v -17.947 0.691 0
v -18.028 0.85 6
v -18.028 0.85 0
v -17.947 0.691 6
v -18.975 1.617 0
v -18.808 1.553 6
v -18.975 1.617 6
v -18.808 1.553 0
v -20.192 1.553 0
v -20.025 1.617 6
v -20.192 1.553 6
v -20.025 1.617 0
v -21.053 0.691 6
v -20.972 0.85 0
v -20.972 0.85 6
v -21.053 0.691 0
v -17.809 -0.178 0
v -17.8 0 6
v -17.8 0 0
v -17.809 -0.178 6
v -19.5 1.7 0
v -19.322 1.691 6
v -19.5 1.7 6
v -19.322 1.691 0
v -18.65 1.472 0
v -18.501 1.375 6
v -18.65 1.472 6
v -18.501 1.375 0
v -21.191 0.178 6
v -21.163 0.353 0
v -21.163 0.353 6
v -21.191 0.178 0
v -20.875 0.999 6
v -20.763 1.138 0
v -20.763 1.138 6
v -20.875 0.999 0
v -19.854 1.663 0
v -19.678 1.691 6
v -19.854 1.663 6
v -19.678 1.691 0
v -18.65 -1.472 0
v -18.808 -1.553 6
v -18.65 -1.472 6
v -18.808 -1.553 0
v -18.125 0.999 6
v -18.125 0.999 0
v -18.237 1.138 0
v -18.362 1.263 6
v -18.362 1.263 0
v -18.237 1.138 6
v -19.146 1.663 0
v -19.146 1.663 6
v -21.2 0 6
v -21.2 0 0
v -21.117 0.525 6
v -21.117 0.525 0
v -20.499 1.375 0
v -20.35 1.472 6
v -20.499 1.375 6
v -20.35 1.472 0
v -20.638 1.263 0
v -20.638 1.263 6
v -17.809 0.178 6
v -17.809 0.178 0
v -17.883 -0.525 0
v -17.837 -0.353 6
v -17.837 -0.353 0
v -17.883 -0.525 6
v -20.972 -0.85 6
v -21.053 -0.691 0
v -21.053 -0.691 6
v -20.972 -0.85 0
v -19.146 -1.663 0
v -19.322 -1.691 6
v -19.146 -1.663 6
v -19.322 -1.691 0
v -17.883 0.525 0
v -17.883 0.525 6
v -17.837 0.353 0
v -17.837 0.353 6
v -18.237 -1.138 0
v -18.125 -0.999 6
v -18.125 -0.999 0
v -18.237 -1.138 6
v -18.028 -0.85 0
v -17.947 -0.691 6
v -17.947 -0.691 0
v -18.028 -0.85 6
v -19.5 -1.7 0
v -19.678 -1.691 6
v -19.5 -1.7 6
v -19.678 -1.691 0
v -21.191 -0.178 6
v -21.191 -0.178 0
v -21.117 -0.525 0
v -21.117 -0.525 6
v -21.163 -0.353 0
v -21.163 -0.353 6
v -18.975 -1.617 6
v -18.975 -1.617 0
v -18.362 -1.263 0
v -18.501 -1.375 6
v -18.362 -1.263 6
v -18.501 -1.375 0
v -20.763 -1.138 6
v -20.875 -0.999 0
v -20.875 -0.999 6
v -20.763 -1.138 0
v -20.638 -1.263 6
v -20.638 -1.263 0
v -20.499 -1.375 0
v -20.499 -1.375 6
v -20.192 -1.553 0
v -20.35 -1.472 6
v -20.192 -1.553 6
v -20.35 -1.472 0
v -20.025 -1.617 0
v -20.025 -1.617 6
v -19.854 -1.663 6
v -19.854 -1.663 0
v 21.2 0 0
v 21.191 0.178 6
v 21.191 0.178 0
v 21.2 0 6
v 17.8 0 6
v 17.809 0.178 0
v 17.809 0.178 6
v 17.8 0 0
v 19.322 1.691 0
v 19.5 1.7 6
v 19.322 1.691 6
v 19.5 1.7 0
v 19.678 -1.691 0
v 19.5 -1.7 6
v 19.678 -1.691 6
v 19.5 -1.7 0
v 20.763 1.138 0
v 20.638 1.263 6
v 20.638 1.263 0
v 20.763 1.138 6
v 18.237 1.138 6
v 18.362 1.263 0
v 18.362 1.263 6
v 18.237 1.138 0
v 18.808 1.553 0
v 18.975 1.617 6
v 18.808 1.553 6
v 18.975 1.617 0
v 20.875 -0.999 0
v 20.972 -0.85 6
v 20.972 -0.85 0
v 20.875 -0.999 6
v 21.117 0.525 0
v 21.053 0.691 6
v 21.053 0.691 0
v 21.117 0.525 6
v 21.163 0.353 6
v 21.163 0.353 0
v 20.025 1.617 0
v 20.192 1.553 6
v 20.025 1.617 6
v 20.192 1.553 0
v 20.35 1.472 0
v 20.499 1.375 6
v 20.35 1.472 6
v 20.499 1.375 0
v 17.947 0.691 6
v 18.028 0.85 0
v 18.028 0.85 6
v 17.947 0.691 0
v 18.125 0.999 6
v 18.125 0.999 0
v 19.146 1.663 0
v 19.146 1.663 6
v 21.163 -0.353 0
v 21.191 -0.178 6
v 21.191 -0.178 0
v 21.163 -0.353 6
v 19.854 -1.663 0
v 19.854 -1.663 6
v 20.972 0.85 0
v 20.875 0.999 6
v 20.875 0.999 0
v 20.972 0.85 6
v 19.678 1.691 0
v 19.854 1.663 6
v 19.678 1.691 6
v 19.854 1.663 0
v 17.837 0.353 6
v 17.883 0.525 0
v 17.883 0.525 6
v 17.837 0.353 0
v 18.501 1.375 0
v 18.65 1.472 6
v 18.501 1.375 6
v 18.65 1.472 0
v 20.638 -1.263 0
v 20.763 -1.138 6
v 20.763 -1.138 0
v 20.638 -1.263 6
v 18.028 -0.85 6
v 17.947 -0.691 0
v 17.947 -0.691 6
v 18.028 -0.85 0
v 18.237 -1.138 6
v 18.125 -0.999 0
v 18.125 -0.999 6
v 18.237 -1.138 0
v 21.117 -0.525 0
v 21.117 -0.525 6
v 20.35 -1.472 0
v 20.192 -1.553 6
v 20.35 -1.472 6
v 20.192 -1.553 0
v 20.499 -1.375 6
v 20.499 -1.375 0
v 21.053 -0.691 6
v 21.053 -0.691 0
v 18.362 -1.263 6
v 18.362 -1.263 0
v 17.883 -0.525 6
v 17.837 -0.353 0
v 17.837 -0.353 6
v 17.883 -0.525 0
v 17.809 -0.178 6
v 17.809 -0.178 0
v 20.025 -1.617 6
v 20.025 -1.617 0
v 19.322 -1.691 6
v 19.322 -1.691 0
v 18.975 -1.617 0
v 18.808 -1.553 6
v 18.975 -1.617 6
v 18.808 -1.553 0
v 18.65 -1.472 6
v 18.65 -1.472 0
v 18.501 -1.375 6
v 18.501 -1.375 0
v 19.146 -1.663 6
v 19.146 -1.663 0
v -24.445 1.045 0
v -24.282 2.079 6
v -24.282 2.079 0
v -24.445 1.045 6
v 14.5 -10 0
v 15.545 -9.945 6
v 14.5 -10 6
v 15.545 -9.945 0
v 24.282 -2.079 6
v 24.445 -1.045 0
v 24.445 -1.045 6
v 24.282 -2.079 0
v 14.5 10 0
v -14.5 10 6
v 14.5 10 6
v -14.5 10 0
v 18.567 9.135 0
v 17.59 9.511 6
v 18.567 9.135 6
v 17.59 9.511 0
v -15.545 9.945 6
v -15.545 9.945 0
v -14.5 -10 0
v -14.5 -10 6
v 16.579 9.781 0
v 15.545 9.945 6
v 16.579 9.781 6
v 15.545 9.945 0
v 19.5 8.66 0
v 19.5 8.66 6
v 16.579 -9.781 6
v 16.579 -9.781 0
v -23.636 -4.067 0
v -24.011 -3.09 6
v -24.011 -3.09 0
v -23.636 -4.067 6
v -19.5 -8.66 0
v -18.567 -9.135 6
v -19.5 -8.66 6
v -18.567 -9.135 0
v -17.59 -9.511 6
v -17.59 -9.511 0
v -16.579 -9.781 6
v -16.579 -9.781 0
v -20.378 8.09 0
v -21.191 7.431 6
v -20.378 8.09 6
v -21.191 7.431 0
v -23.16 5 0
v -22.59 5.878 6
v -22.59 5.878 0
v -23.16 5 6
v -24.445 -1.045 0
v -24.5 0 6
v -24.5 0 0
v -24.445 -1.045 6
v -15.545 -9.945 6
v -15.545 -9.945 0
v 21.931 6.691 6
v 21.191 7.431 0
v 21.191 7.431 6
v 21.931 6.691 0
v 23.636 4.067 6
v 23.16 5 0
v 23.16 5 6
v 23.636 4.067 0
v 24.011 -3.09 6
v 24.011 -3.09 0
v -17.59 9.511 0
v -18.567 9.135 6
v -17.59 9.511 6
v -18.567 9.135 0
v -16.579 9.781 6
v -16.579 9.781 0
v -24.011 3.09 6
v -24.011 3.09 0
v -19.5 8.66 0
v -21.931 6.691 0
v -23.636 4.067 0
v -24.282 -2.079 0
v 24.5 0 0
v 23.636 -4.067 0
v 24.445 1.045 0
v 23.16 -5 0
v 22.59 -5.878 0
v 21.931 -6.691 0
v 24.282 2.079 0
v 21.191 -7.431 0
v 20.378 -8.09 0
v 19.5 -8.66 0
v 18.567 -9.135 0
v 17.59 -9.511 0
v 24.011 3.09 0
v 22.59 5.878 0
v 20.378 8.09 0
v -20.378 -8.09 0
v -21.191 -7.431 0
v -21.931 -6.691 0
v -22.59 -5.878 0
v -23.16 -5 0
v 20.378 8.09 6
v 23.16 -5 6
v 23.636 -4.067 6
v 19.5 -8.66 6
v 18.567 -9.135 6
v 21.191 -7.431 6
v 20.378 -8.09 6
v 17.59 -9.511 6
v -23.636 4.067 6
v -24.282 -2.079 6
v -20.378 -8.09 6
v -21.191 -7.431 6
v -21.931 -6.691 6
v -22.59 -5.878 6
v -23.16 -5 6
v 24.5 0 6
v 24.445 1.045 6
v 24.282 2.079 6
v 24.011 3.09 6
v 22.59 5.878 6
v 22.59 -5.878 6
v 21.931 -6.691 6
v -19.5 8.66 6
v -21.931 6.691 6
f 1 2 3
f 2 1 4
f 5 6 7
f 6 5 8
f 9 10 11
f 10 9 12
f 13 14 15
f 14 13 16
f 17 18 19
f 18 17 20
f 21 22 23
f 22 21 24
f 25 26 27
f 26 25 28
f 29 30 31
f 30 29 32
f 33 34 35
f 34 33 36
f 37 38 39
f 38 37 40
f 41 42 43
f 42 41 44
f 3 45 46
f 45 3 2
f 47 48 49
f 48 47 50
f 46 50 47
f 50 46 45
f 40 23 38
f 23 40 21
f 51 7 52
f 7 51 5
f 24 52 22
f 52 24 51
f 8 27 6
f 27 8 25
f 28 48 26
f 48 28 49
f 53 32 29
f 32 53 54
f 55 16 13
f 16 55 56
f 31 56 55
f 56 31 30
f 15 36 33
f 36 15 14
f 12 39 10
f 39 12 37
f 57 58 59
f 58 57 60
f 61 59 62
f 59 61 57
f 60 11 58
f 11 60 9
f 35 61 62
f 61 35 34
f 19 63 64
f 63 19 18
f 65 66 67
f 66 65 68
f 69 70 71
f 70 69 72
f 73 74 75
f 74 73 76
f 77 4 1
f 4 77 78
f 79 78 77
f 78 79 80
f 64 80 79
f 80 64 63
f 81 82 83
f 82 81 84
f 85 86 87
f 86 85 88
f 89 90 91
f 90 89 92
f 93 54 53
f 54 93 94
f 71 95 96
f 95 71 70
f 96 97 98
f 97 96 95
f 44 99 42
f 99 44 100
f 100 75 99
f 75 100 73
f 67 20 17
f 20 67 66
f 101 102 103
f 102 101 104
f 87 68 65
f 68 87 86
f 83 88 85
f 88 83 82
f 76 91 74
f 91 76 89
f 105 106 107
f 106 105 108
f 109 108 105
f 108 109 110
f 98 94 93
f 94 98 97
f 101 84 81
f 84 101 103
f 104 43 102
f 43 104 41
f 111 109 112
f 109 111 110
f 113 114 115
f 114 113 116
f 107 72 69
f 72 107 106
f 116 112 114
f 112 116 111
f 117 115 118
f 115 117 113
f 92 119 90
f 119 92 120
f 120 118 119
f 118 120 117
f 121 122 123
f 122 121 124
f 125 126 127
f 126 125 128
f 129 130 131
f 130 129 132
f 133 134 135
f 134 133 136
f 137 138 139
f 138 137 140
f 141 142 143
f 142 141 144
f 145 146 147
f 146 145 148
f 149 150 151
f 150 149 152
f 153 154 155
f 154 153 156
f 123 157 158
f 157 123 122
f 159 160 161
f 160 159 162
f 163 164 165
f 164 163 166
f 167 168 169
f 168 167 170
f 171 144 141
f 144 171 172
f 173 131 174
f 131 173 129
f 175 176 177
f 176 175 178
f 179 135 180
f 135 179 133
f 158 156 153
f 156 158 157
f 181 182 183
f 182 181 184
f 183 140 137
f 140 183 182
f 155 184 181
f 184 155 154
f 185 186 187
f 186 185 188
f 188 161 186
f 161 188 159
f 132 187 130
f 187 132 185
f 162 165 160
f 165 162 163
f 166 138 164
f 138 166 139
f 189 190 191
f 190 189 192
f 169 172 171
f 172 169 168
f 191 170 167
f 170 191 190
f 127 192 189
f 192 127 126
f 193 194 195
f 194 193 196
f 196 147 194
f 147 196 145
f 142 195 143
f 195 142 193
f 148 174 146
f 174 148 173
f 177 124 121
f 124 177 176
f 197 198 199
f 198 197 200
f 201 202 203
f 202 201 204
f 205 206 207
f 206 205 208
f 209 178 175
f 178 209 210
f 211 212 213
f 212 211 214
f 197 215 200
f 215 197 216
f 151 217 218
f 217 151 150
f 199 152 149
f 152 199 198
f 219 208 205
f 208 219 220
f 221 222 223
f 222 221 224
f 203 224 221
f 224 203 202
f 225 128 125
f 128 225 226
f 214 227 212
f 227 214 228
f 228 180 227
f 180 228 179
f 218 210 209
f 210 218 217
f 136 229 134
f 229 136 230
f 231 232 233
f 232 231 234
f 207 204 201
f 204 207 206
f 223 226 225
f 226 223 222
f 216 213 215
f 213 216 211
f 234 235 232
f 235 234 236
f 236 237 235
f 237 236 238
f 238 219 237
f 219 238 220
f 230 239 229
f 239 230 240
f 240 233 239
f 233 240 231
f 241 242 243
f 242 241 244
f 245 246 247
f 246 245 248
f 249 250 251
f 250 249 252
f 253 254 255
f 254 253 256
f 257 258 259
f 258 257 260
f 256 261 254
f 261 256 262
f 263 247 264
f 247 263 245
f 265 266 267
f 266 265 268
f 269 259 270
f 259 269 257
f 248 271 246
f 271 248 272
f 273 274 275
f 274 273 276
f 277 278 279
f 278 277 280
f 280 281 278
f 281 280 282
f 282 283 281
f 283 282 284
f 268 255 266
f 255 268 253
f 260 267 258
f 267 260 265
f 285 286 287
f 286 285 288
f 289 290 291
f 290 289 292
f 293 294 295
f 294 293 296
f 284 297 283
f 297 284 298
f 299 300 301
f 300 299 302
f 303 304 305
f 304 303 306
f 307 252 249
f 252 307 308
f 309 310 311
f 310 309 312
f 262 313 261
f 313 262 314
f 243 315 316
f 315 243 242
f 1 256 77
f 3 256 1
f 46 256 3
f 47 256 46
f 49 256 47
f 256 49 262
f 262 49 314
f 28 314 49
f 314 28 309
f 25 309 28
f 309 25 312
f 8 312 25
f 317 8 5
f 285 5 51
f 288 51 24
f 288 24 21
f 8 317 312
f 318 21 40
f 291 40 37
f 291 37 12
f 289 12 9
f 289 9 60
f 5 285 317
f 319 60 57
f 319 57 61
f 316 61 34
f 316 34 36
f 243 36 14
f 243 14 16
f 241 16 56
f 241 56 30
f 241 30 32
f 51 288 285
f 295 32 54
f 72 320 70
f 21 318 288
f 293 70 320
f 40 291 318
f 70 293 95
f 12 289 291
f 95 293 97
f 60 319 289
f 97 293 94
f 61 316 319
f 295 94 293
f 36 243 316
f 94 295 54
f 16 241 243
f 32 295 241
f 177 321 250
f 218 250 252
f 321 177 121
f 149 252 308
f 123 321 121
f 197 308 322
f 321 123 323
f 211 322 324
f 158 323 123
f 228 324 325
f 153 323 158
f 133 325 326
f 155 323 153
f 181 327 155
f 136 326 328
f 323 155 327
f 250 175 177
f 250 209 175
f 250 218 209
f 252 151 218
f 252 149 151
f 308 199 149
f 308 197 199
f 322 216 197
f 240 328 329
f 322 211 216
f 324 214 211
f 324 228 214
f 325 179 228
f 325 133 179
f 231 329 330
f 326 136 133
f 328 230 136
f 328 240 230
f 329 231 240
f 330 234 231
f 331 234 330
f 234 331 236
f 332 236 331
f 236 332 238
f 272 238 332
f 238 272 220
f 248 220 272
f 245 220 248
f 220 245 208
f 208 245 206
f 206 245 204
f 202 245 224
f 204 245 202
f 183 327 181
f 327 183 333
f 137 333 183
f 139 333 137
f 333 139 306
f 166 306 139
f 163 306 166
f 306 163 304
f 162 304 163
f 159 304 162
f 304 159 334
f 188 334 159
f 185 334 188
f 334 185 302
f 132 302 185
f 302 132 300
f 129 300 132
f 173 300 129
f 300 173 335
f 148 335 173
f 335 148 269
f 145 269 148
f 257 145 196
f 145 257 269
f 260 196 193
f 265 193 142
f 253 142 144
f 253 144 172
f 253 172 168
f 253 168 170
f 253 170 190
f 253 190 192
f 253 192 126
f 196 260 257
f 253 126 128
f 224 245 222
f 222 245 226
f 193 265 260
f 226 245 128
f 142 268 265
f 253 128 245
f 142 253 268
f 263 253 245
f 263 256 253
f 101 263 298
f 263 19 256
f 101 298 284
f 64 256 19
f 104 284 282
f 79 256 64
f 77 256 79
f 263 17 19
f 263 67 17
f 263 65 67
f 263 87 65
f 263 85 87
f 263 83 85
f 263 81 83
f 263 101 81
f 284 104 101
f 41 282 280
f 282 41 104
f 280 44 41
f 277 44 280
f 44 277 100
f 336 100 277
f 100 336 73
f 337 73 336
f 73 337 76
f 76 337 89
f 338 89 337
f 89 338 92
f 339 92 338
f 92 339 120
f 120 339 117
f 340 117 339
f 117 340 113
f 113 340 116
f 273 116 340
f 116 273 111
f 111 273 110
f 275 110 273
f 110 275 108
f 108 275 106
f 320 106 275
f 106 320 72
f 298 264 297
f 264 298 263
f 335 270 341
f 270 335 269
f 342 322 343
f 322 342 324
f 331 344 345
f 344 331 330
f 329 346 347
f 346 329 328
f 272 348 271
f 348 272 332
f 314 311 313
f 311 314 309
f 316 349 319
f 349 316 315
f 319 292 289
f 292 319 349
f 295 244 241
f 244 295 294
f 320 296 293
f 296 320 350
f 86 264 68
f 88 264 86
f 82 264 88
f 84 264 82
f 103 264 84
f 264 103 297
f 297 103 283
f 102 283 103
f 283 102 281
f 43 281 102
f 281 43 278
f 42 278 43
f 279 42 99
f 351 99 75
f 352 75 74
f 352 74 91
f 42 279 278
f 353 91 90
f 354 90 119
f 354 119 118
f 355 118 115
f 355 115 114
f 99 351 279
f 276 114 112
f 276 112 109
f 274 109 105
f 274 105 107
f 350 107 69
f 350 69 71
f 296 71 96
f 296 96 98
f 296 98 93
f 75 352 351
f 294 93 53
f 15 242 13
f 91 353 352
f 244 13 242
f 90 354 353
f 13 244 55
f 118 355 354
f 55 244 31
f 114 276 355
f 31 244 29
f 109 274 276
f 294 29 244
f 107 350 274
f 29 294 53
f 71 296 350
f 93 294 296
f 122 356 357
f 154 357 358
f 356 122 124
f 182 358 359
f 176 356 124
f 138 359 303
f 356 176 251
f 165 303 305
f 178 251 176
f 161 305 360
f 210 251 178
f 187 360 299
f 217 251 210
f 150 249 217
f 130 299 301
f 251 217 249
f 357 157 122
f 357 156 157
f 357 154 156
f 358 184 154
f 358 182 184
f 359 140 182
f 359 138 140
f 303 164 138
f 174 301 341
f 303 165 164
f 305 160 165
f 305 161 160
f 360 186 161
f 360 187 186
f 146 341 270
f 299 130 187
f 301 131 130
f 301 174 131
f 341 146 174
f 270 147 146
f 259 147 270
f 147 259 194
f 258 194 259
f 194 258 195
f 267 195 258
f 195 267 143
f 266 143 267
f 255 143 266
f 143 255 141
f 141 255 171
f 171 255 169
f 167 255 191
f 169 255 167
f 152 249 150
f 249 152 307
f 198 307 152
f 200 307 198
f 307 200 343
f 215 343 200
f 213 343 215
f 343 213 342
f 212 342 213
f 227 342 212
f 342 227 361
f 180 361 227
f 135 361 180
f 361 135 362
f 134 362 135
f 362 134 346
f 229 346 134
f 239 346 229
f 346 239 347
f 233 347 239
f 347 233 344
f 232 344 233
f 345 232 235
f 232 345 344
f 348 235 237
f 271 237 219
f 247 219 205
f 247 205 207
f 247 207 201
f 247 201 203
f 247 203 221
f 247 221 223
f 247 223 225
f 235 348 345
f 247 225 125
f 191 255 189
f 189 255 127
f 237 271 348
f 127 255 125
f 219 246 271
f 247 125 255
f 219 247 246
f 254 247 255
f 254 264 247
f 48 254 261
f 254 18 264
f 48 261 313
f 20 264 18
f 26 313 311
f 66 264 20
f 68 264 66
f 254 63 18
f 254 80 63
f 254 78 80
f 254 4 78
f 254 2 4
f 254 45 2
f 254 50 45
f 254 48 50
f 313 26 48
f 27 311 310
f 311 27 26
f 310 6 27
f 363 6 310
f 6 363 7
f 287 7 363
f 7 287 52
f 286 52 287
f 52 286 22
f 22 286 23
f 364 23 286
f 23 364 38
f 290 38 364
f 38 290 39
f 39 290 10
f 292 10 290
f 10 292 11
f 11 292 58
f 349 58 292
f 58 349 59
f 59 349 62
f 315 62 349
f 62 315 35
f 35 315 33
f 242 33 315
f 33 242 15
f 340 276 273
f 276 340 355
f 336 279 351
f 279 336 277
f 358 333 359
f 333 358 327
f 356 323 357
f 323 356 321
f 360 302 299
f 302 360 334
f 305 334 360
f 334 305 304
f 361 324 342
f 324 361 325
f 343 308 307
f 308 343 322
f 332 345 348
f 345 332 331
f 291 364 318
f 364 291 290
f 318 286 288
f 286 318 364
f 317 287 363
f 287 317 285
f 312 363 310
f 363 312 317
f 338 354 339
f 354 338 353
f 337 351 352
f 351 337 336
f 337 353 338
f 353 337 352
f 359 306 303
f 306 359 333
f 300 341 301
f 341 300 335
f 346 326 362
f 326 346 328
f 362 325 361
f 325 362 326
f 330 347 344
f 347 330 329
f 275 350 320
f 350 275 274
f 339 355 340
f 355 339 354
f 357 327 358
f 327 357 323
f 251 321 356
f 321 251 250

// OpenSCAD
// ===== SLAM Rover — caster spacer (SR-005) =====
// Makes the caster stack match the drive-wheel geometry so the plate sits
// level. Height budget (see cad/chassis-design.md):
//   plate underside = 21.5 (43mm wheel radius) + 5 (motor half-height)
//                     + 3 (clamp flange) = 29.5 mm above ground
//   spacer h = 29.5 − (measured caster height)
// >>> The default h is a PLACEHOLDER. Measure the real caster when it
//     arrives, set h, re-render, print. (This is why it's code.)

$fn = 60;

spacer_l     = 49;    // caster base plate length (Amazon listing spec)
spacer_w     = 20;
h            = 6;     // PLACEHOLDER — set to 29.5 − measured caster height
hole_spacing = 39;    // caster mounting hole spacing (listing spec)
hole_d       = 3.4;   // M3 screw or zip-tie clearance

difference() {
    // rounded-end bar
    hull()
        for (x = [-1, 1])
            translate([x * (spacer_l/2 - spacer_w/2), 0, 0])
                cylinder(d = spacer_w, h = h);
    // mounting holes, through
    for (x = [-1, 1])
        translate([x * hole_spacing/2, 0, -1])
            cylinder(d = hole_d, h = h + 2);
}
